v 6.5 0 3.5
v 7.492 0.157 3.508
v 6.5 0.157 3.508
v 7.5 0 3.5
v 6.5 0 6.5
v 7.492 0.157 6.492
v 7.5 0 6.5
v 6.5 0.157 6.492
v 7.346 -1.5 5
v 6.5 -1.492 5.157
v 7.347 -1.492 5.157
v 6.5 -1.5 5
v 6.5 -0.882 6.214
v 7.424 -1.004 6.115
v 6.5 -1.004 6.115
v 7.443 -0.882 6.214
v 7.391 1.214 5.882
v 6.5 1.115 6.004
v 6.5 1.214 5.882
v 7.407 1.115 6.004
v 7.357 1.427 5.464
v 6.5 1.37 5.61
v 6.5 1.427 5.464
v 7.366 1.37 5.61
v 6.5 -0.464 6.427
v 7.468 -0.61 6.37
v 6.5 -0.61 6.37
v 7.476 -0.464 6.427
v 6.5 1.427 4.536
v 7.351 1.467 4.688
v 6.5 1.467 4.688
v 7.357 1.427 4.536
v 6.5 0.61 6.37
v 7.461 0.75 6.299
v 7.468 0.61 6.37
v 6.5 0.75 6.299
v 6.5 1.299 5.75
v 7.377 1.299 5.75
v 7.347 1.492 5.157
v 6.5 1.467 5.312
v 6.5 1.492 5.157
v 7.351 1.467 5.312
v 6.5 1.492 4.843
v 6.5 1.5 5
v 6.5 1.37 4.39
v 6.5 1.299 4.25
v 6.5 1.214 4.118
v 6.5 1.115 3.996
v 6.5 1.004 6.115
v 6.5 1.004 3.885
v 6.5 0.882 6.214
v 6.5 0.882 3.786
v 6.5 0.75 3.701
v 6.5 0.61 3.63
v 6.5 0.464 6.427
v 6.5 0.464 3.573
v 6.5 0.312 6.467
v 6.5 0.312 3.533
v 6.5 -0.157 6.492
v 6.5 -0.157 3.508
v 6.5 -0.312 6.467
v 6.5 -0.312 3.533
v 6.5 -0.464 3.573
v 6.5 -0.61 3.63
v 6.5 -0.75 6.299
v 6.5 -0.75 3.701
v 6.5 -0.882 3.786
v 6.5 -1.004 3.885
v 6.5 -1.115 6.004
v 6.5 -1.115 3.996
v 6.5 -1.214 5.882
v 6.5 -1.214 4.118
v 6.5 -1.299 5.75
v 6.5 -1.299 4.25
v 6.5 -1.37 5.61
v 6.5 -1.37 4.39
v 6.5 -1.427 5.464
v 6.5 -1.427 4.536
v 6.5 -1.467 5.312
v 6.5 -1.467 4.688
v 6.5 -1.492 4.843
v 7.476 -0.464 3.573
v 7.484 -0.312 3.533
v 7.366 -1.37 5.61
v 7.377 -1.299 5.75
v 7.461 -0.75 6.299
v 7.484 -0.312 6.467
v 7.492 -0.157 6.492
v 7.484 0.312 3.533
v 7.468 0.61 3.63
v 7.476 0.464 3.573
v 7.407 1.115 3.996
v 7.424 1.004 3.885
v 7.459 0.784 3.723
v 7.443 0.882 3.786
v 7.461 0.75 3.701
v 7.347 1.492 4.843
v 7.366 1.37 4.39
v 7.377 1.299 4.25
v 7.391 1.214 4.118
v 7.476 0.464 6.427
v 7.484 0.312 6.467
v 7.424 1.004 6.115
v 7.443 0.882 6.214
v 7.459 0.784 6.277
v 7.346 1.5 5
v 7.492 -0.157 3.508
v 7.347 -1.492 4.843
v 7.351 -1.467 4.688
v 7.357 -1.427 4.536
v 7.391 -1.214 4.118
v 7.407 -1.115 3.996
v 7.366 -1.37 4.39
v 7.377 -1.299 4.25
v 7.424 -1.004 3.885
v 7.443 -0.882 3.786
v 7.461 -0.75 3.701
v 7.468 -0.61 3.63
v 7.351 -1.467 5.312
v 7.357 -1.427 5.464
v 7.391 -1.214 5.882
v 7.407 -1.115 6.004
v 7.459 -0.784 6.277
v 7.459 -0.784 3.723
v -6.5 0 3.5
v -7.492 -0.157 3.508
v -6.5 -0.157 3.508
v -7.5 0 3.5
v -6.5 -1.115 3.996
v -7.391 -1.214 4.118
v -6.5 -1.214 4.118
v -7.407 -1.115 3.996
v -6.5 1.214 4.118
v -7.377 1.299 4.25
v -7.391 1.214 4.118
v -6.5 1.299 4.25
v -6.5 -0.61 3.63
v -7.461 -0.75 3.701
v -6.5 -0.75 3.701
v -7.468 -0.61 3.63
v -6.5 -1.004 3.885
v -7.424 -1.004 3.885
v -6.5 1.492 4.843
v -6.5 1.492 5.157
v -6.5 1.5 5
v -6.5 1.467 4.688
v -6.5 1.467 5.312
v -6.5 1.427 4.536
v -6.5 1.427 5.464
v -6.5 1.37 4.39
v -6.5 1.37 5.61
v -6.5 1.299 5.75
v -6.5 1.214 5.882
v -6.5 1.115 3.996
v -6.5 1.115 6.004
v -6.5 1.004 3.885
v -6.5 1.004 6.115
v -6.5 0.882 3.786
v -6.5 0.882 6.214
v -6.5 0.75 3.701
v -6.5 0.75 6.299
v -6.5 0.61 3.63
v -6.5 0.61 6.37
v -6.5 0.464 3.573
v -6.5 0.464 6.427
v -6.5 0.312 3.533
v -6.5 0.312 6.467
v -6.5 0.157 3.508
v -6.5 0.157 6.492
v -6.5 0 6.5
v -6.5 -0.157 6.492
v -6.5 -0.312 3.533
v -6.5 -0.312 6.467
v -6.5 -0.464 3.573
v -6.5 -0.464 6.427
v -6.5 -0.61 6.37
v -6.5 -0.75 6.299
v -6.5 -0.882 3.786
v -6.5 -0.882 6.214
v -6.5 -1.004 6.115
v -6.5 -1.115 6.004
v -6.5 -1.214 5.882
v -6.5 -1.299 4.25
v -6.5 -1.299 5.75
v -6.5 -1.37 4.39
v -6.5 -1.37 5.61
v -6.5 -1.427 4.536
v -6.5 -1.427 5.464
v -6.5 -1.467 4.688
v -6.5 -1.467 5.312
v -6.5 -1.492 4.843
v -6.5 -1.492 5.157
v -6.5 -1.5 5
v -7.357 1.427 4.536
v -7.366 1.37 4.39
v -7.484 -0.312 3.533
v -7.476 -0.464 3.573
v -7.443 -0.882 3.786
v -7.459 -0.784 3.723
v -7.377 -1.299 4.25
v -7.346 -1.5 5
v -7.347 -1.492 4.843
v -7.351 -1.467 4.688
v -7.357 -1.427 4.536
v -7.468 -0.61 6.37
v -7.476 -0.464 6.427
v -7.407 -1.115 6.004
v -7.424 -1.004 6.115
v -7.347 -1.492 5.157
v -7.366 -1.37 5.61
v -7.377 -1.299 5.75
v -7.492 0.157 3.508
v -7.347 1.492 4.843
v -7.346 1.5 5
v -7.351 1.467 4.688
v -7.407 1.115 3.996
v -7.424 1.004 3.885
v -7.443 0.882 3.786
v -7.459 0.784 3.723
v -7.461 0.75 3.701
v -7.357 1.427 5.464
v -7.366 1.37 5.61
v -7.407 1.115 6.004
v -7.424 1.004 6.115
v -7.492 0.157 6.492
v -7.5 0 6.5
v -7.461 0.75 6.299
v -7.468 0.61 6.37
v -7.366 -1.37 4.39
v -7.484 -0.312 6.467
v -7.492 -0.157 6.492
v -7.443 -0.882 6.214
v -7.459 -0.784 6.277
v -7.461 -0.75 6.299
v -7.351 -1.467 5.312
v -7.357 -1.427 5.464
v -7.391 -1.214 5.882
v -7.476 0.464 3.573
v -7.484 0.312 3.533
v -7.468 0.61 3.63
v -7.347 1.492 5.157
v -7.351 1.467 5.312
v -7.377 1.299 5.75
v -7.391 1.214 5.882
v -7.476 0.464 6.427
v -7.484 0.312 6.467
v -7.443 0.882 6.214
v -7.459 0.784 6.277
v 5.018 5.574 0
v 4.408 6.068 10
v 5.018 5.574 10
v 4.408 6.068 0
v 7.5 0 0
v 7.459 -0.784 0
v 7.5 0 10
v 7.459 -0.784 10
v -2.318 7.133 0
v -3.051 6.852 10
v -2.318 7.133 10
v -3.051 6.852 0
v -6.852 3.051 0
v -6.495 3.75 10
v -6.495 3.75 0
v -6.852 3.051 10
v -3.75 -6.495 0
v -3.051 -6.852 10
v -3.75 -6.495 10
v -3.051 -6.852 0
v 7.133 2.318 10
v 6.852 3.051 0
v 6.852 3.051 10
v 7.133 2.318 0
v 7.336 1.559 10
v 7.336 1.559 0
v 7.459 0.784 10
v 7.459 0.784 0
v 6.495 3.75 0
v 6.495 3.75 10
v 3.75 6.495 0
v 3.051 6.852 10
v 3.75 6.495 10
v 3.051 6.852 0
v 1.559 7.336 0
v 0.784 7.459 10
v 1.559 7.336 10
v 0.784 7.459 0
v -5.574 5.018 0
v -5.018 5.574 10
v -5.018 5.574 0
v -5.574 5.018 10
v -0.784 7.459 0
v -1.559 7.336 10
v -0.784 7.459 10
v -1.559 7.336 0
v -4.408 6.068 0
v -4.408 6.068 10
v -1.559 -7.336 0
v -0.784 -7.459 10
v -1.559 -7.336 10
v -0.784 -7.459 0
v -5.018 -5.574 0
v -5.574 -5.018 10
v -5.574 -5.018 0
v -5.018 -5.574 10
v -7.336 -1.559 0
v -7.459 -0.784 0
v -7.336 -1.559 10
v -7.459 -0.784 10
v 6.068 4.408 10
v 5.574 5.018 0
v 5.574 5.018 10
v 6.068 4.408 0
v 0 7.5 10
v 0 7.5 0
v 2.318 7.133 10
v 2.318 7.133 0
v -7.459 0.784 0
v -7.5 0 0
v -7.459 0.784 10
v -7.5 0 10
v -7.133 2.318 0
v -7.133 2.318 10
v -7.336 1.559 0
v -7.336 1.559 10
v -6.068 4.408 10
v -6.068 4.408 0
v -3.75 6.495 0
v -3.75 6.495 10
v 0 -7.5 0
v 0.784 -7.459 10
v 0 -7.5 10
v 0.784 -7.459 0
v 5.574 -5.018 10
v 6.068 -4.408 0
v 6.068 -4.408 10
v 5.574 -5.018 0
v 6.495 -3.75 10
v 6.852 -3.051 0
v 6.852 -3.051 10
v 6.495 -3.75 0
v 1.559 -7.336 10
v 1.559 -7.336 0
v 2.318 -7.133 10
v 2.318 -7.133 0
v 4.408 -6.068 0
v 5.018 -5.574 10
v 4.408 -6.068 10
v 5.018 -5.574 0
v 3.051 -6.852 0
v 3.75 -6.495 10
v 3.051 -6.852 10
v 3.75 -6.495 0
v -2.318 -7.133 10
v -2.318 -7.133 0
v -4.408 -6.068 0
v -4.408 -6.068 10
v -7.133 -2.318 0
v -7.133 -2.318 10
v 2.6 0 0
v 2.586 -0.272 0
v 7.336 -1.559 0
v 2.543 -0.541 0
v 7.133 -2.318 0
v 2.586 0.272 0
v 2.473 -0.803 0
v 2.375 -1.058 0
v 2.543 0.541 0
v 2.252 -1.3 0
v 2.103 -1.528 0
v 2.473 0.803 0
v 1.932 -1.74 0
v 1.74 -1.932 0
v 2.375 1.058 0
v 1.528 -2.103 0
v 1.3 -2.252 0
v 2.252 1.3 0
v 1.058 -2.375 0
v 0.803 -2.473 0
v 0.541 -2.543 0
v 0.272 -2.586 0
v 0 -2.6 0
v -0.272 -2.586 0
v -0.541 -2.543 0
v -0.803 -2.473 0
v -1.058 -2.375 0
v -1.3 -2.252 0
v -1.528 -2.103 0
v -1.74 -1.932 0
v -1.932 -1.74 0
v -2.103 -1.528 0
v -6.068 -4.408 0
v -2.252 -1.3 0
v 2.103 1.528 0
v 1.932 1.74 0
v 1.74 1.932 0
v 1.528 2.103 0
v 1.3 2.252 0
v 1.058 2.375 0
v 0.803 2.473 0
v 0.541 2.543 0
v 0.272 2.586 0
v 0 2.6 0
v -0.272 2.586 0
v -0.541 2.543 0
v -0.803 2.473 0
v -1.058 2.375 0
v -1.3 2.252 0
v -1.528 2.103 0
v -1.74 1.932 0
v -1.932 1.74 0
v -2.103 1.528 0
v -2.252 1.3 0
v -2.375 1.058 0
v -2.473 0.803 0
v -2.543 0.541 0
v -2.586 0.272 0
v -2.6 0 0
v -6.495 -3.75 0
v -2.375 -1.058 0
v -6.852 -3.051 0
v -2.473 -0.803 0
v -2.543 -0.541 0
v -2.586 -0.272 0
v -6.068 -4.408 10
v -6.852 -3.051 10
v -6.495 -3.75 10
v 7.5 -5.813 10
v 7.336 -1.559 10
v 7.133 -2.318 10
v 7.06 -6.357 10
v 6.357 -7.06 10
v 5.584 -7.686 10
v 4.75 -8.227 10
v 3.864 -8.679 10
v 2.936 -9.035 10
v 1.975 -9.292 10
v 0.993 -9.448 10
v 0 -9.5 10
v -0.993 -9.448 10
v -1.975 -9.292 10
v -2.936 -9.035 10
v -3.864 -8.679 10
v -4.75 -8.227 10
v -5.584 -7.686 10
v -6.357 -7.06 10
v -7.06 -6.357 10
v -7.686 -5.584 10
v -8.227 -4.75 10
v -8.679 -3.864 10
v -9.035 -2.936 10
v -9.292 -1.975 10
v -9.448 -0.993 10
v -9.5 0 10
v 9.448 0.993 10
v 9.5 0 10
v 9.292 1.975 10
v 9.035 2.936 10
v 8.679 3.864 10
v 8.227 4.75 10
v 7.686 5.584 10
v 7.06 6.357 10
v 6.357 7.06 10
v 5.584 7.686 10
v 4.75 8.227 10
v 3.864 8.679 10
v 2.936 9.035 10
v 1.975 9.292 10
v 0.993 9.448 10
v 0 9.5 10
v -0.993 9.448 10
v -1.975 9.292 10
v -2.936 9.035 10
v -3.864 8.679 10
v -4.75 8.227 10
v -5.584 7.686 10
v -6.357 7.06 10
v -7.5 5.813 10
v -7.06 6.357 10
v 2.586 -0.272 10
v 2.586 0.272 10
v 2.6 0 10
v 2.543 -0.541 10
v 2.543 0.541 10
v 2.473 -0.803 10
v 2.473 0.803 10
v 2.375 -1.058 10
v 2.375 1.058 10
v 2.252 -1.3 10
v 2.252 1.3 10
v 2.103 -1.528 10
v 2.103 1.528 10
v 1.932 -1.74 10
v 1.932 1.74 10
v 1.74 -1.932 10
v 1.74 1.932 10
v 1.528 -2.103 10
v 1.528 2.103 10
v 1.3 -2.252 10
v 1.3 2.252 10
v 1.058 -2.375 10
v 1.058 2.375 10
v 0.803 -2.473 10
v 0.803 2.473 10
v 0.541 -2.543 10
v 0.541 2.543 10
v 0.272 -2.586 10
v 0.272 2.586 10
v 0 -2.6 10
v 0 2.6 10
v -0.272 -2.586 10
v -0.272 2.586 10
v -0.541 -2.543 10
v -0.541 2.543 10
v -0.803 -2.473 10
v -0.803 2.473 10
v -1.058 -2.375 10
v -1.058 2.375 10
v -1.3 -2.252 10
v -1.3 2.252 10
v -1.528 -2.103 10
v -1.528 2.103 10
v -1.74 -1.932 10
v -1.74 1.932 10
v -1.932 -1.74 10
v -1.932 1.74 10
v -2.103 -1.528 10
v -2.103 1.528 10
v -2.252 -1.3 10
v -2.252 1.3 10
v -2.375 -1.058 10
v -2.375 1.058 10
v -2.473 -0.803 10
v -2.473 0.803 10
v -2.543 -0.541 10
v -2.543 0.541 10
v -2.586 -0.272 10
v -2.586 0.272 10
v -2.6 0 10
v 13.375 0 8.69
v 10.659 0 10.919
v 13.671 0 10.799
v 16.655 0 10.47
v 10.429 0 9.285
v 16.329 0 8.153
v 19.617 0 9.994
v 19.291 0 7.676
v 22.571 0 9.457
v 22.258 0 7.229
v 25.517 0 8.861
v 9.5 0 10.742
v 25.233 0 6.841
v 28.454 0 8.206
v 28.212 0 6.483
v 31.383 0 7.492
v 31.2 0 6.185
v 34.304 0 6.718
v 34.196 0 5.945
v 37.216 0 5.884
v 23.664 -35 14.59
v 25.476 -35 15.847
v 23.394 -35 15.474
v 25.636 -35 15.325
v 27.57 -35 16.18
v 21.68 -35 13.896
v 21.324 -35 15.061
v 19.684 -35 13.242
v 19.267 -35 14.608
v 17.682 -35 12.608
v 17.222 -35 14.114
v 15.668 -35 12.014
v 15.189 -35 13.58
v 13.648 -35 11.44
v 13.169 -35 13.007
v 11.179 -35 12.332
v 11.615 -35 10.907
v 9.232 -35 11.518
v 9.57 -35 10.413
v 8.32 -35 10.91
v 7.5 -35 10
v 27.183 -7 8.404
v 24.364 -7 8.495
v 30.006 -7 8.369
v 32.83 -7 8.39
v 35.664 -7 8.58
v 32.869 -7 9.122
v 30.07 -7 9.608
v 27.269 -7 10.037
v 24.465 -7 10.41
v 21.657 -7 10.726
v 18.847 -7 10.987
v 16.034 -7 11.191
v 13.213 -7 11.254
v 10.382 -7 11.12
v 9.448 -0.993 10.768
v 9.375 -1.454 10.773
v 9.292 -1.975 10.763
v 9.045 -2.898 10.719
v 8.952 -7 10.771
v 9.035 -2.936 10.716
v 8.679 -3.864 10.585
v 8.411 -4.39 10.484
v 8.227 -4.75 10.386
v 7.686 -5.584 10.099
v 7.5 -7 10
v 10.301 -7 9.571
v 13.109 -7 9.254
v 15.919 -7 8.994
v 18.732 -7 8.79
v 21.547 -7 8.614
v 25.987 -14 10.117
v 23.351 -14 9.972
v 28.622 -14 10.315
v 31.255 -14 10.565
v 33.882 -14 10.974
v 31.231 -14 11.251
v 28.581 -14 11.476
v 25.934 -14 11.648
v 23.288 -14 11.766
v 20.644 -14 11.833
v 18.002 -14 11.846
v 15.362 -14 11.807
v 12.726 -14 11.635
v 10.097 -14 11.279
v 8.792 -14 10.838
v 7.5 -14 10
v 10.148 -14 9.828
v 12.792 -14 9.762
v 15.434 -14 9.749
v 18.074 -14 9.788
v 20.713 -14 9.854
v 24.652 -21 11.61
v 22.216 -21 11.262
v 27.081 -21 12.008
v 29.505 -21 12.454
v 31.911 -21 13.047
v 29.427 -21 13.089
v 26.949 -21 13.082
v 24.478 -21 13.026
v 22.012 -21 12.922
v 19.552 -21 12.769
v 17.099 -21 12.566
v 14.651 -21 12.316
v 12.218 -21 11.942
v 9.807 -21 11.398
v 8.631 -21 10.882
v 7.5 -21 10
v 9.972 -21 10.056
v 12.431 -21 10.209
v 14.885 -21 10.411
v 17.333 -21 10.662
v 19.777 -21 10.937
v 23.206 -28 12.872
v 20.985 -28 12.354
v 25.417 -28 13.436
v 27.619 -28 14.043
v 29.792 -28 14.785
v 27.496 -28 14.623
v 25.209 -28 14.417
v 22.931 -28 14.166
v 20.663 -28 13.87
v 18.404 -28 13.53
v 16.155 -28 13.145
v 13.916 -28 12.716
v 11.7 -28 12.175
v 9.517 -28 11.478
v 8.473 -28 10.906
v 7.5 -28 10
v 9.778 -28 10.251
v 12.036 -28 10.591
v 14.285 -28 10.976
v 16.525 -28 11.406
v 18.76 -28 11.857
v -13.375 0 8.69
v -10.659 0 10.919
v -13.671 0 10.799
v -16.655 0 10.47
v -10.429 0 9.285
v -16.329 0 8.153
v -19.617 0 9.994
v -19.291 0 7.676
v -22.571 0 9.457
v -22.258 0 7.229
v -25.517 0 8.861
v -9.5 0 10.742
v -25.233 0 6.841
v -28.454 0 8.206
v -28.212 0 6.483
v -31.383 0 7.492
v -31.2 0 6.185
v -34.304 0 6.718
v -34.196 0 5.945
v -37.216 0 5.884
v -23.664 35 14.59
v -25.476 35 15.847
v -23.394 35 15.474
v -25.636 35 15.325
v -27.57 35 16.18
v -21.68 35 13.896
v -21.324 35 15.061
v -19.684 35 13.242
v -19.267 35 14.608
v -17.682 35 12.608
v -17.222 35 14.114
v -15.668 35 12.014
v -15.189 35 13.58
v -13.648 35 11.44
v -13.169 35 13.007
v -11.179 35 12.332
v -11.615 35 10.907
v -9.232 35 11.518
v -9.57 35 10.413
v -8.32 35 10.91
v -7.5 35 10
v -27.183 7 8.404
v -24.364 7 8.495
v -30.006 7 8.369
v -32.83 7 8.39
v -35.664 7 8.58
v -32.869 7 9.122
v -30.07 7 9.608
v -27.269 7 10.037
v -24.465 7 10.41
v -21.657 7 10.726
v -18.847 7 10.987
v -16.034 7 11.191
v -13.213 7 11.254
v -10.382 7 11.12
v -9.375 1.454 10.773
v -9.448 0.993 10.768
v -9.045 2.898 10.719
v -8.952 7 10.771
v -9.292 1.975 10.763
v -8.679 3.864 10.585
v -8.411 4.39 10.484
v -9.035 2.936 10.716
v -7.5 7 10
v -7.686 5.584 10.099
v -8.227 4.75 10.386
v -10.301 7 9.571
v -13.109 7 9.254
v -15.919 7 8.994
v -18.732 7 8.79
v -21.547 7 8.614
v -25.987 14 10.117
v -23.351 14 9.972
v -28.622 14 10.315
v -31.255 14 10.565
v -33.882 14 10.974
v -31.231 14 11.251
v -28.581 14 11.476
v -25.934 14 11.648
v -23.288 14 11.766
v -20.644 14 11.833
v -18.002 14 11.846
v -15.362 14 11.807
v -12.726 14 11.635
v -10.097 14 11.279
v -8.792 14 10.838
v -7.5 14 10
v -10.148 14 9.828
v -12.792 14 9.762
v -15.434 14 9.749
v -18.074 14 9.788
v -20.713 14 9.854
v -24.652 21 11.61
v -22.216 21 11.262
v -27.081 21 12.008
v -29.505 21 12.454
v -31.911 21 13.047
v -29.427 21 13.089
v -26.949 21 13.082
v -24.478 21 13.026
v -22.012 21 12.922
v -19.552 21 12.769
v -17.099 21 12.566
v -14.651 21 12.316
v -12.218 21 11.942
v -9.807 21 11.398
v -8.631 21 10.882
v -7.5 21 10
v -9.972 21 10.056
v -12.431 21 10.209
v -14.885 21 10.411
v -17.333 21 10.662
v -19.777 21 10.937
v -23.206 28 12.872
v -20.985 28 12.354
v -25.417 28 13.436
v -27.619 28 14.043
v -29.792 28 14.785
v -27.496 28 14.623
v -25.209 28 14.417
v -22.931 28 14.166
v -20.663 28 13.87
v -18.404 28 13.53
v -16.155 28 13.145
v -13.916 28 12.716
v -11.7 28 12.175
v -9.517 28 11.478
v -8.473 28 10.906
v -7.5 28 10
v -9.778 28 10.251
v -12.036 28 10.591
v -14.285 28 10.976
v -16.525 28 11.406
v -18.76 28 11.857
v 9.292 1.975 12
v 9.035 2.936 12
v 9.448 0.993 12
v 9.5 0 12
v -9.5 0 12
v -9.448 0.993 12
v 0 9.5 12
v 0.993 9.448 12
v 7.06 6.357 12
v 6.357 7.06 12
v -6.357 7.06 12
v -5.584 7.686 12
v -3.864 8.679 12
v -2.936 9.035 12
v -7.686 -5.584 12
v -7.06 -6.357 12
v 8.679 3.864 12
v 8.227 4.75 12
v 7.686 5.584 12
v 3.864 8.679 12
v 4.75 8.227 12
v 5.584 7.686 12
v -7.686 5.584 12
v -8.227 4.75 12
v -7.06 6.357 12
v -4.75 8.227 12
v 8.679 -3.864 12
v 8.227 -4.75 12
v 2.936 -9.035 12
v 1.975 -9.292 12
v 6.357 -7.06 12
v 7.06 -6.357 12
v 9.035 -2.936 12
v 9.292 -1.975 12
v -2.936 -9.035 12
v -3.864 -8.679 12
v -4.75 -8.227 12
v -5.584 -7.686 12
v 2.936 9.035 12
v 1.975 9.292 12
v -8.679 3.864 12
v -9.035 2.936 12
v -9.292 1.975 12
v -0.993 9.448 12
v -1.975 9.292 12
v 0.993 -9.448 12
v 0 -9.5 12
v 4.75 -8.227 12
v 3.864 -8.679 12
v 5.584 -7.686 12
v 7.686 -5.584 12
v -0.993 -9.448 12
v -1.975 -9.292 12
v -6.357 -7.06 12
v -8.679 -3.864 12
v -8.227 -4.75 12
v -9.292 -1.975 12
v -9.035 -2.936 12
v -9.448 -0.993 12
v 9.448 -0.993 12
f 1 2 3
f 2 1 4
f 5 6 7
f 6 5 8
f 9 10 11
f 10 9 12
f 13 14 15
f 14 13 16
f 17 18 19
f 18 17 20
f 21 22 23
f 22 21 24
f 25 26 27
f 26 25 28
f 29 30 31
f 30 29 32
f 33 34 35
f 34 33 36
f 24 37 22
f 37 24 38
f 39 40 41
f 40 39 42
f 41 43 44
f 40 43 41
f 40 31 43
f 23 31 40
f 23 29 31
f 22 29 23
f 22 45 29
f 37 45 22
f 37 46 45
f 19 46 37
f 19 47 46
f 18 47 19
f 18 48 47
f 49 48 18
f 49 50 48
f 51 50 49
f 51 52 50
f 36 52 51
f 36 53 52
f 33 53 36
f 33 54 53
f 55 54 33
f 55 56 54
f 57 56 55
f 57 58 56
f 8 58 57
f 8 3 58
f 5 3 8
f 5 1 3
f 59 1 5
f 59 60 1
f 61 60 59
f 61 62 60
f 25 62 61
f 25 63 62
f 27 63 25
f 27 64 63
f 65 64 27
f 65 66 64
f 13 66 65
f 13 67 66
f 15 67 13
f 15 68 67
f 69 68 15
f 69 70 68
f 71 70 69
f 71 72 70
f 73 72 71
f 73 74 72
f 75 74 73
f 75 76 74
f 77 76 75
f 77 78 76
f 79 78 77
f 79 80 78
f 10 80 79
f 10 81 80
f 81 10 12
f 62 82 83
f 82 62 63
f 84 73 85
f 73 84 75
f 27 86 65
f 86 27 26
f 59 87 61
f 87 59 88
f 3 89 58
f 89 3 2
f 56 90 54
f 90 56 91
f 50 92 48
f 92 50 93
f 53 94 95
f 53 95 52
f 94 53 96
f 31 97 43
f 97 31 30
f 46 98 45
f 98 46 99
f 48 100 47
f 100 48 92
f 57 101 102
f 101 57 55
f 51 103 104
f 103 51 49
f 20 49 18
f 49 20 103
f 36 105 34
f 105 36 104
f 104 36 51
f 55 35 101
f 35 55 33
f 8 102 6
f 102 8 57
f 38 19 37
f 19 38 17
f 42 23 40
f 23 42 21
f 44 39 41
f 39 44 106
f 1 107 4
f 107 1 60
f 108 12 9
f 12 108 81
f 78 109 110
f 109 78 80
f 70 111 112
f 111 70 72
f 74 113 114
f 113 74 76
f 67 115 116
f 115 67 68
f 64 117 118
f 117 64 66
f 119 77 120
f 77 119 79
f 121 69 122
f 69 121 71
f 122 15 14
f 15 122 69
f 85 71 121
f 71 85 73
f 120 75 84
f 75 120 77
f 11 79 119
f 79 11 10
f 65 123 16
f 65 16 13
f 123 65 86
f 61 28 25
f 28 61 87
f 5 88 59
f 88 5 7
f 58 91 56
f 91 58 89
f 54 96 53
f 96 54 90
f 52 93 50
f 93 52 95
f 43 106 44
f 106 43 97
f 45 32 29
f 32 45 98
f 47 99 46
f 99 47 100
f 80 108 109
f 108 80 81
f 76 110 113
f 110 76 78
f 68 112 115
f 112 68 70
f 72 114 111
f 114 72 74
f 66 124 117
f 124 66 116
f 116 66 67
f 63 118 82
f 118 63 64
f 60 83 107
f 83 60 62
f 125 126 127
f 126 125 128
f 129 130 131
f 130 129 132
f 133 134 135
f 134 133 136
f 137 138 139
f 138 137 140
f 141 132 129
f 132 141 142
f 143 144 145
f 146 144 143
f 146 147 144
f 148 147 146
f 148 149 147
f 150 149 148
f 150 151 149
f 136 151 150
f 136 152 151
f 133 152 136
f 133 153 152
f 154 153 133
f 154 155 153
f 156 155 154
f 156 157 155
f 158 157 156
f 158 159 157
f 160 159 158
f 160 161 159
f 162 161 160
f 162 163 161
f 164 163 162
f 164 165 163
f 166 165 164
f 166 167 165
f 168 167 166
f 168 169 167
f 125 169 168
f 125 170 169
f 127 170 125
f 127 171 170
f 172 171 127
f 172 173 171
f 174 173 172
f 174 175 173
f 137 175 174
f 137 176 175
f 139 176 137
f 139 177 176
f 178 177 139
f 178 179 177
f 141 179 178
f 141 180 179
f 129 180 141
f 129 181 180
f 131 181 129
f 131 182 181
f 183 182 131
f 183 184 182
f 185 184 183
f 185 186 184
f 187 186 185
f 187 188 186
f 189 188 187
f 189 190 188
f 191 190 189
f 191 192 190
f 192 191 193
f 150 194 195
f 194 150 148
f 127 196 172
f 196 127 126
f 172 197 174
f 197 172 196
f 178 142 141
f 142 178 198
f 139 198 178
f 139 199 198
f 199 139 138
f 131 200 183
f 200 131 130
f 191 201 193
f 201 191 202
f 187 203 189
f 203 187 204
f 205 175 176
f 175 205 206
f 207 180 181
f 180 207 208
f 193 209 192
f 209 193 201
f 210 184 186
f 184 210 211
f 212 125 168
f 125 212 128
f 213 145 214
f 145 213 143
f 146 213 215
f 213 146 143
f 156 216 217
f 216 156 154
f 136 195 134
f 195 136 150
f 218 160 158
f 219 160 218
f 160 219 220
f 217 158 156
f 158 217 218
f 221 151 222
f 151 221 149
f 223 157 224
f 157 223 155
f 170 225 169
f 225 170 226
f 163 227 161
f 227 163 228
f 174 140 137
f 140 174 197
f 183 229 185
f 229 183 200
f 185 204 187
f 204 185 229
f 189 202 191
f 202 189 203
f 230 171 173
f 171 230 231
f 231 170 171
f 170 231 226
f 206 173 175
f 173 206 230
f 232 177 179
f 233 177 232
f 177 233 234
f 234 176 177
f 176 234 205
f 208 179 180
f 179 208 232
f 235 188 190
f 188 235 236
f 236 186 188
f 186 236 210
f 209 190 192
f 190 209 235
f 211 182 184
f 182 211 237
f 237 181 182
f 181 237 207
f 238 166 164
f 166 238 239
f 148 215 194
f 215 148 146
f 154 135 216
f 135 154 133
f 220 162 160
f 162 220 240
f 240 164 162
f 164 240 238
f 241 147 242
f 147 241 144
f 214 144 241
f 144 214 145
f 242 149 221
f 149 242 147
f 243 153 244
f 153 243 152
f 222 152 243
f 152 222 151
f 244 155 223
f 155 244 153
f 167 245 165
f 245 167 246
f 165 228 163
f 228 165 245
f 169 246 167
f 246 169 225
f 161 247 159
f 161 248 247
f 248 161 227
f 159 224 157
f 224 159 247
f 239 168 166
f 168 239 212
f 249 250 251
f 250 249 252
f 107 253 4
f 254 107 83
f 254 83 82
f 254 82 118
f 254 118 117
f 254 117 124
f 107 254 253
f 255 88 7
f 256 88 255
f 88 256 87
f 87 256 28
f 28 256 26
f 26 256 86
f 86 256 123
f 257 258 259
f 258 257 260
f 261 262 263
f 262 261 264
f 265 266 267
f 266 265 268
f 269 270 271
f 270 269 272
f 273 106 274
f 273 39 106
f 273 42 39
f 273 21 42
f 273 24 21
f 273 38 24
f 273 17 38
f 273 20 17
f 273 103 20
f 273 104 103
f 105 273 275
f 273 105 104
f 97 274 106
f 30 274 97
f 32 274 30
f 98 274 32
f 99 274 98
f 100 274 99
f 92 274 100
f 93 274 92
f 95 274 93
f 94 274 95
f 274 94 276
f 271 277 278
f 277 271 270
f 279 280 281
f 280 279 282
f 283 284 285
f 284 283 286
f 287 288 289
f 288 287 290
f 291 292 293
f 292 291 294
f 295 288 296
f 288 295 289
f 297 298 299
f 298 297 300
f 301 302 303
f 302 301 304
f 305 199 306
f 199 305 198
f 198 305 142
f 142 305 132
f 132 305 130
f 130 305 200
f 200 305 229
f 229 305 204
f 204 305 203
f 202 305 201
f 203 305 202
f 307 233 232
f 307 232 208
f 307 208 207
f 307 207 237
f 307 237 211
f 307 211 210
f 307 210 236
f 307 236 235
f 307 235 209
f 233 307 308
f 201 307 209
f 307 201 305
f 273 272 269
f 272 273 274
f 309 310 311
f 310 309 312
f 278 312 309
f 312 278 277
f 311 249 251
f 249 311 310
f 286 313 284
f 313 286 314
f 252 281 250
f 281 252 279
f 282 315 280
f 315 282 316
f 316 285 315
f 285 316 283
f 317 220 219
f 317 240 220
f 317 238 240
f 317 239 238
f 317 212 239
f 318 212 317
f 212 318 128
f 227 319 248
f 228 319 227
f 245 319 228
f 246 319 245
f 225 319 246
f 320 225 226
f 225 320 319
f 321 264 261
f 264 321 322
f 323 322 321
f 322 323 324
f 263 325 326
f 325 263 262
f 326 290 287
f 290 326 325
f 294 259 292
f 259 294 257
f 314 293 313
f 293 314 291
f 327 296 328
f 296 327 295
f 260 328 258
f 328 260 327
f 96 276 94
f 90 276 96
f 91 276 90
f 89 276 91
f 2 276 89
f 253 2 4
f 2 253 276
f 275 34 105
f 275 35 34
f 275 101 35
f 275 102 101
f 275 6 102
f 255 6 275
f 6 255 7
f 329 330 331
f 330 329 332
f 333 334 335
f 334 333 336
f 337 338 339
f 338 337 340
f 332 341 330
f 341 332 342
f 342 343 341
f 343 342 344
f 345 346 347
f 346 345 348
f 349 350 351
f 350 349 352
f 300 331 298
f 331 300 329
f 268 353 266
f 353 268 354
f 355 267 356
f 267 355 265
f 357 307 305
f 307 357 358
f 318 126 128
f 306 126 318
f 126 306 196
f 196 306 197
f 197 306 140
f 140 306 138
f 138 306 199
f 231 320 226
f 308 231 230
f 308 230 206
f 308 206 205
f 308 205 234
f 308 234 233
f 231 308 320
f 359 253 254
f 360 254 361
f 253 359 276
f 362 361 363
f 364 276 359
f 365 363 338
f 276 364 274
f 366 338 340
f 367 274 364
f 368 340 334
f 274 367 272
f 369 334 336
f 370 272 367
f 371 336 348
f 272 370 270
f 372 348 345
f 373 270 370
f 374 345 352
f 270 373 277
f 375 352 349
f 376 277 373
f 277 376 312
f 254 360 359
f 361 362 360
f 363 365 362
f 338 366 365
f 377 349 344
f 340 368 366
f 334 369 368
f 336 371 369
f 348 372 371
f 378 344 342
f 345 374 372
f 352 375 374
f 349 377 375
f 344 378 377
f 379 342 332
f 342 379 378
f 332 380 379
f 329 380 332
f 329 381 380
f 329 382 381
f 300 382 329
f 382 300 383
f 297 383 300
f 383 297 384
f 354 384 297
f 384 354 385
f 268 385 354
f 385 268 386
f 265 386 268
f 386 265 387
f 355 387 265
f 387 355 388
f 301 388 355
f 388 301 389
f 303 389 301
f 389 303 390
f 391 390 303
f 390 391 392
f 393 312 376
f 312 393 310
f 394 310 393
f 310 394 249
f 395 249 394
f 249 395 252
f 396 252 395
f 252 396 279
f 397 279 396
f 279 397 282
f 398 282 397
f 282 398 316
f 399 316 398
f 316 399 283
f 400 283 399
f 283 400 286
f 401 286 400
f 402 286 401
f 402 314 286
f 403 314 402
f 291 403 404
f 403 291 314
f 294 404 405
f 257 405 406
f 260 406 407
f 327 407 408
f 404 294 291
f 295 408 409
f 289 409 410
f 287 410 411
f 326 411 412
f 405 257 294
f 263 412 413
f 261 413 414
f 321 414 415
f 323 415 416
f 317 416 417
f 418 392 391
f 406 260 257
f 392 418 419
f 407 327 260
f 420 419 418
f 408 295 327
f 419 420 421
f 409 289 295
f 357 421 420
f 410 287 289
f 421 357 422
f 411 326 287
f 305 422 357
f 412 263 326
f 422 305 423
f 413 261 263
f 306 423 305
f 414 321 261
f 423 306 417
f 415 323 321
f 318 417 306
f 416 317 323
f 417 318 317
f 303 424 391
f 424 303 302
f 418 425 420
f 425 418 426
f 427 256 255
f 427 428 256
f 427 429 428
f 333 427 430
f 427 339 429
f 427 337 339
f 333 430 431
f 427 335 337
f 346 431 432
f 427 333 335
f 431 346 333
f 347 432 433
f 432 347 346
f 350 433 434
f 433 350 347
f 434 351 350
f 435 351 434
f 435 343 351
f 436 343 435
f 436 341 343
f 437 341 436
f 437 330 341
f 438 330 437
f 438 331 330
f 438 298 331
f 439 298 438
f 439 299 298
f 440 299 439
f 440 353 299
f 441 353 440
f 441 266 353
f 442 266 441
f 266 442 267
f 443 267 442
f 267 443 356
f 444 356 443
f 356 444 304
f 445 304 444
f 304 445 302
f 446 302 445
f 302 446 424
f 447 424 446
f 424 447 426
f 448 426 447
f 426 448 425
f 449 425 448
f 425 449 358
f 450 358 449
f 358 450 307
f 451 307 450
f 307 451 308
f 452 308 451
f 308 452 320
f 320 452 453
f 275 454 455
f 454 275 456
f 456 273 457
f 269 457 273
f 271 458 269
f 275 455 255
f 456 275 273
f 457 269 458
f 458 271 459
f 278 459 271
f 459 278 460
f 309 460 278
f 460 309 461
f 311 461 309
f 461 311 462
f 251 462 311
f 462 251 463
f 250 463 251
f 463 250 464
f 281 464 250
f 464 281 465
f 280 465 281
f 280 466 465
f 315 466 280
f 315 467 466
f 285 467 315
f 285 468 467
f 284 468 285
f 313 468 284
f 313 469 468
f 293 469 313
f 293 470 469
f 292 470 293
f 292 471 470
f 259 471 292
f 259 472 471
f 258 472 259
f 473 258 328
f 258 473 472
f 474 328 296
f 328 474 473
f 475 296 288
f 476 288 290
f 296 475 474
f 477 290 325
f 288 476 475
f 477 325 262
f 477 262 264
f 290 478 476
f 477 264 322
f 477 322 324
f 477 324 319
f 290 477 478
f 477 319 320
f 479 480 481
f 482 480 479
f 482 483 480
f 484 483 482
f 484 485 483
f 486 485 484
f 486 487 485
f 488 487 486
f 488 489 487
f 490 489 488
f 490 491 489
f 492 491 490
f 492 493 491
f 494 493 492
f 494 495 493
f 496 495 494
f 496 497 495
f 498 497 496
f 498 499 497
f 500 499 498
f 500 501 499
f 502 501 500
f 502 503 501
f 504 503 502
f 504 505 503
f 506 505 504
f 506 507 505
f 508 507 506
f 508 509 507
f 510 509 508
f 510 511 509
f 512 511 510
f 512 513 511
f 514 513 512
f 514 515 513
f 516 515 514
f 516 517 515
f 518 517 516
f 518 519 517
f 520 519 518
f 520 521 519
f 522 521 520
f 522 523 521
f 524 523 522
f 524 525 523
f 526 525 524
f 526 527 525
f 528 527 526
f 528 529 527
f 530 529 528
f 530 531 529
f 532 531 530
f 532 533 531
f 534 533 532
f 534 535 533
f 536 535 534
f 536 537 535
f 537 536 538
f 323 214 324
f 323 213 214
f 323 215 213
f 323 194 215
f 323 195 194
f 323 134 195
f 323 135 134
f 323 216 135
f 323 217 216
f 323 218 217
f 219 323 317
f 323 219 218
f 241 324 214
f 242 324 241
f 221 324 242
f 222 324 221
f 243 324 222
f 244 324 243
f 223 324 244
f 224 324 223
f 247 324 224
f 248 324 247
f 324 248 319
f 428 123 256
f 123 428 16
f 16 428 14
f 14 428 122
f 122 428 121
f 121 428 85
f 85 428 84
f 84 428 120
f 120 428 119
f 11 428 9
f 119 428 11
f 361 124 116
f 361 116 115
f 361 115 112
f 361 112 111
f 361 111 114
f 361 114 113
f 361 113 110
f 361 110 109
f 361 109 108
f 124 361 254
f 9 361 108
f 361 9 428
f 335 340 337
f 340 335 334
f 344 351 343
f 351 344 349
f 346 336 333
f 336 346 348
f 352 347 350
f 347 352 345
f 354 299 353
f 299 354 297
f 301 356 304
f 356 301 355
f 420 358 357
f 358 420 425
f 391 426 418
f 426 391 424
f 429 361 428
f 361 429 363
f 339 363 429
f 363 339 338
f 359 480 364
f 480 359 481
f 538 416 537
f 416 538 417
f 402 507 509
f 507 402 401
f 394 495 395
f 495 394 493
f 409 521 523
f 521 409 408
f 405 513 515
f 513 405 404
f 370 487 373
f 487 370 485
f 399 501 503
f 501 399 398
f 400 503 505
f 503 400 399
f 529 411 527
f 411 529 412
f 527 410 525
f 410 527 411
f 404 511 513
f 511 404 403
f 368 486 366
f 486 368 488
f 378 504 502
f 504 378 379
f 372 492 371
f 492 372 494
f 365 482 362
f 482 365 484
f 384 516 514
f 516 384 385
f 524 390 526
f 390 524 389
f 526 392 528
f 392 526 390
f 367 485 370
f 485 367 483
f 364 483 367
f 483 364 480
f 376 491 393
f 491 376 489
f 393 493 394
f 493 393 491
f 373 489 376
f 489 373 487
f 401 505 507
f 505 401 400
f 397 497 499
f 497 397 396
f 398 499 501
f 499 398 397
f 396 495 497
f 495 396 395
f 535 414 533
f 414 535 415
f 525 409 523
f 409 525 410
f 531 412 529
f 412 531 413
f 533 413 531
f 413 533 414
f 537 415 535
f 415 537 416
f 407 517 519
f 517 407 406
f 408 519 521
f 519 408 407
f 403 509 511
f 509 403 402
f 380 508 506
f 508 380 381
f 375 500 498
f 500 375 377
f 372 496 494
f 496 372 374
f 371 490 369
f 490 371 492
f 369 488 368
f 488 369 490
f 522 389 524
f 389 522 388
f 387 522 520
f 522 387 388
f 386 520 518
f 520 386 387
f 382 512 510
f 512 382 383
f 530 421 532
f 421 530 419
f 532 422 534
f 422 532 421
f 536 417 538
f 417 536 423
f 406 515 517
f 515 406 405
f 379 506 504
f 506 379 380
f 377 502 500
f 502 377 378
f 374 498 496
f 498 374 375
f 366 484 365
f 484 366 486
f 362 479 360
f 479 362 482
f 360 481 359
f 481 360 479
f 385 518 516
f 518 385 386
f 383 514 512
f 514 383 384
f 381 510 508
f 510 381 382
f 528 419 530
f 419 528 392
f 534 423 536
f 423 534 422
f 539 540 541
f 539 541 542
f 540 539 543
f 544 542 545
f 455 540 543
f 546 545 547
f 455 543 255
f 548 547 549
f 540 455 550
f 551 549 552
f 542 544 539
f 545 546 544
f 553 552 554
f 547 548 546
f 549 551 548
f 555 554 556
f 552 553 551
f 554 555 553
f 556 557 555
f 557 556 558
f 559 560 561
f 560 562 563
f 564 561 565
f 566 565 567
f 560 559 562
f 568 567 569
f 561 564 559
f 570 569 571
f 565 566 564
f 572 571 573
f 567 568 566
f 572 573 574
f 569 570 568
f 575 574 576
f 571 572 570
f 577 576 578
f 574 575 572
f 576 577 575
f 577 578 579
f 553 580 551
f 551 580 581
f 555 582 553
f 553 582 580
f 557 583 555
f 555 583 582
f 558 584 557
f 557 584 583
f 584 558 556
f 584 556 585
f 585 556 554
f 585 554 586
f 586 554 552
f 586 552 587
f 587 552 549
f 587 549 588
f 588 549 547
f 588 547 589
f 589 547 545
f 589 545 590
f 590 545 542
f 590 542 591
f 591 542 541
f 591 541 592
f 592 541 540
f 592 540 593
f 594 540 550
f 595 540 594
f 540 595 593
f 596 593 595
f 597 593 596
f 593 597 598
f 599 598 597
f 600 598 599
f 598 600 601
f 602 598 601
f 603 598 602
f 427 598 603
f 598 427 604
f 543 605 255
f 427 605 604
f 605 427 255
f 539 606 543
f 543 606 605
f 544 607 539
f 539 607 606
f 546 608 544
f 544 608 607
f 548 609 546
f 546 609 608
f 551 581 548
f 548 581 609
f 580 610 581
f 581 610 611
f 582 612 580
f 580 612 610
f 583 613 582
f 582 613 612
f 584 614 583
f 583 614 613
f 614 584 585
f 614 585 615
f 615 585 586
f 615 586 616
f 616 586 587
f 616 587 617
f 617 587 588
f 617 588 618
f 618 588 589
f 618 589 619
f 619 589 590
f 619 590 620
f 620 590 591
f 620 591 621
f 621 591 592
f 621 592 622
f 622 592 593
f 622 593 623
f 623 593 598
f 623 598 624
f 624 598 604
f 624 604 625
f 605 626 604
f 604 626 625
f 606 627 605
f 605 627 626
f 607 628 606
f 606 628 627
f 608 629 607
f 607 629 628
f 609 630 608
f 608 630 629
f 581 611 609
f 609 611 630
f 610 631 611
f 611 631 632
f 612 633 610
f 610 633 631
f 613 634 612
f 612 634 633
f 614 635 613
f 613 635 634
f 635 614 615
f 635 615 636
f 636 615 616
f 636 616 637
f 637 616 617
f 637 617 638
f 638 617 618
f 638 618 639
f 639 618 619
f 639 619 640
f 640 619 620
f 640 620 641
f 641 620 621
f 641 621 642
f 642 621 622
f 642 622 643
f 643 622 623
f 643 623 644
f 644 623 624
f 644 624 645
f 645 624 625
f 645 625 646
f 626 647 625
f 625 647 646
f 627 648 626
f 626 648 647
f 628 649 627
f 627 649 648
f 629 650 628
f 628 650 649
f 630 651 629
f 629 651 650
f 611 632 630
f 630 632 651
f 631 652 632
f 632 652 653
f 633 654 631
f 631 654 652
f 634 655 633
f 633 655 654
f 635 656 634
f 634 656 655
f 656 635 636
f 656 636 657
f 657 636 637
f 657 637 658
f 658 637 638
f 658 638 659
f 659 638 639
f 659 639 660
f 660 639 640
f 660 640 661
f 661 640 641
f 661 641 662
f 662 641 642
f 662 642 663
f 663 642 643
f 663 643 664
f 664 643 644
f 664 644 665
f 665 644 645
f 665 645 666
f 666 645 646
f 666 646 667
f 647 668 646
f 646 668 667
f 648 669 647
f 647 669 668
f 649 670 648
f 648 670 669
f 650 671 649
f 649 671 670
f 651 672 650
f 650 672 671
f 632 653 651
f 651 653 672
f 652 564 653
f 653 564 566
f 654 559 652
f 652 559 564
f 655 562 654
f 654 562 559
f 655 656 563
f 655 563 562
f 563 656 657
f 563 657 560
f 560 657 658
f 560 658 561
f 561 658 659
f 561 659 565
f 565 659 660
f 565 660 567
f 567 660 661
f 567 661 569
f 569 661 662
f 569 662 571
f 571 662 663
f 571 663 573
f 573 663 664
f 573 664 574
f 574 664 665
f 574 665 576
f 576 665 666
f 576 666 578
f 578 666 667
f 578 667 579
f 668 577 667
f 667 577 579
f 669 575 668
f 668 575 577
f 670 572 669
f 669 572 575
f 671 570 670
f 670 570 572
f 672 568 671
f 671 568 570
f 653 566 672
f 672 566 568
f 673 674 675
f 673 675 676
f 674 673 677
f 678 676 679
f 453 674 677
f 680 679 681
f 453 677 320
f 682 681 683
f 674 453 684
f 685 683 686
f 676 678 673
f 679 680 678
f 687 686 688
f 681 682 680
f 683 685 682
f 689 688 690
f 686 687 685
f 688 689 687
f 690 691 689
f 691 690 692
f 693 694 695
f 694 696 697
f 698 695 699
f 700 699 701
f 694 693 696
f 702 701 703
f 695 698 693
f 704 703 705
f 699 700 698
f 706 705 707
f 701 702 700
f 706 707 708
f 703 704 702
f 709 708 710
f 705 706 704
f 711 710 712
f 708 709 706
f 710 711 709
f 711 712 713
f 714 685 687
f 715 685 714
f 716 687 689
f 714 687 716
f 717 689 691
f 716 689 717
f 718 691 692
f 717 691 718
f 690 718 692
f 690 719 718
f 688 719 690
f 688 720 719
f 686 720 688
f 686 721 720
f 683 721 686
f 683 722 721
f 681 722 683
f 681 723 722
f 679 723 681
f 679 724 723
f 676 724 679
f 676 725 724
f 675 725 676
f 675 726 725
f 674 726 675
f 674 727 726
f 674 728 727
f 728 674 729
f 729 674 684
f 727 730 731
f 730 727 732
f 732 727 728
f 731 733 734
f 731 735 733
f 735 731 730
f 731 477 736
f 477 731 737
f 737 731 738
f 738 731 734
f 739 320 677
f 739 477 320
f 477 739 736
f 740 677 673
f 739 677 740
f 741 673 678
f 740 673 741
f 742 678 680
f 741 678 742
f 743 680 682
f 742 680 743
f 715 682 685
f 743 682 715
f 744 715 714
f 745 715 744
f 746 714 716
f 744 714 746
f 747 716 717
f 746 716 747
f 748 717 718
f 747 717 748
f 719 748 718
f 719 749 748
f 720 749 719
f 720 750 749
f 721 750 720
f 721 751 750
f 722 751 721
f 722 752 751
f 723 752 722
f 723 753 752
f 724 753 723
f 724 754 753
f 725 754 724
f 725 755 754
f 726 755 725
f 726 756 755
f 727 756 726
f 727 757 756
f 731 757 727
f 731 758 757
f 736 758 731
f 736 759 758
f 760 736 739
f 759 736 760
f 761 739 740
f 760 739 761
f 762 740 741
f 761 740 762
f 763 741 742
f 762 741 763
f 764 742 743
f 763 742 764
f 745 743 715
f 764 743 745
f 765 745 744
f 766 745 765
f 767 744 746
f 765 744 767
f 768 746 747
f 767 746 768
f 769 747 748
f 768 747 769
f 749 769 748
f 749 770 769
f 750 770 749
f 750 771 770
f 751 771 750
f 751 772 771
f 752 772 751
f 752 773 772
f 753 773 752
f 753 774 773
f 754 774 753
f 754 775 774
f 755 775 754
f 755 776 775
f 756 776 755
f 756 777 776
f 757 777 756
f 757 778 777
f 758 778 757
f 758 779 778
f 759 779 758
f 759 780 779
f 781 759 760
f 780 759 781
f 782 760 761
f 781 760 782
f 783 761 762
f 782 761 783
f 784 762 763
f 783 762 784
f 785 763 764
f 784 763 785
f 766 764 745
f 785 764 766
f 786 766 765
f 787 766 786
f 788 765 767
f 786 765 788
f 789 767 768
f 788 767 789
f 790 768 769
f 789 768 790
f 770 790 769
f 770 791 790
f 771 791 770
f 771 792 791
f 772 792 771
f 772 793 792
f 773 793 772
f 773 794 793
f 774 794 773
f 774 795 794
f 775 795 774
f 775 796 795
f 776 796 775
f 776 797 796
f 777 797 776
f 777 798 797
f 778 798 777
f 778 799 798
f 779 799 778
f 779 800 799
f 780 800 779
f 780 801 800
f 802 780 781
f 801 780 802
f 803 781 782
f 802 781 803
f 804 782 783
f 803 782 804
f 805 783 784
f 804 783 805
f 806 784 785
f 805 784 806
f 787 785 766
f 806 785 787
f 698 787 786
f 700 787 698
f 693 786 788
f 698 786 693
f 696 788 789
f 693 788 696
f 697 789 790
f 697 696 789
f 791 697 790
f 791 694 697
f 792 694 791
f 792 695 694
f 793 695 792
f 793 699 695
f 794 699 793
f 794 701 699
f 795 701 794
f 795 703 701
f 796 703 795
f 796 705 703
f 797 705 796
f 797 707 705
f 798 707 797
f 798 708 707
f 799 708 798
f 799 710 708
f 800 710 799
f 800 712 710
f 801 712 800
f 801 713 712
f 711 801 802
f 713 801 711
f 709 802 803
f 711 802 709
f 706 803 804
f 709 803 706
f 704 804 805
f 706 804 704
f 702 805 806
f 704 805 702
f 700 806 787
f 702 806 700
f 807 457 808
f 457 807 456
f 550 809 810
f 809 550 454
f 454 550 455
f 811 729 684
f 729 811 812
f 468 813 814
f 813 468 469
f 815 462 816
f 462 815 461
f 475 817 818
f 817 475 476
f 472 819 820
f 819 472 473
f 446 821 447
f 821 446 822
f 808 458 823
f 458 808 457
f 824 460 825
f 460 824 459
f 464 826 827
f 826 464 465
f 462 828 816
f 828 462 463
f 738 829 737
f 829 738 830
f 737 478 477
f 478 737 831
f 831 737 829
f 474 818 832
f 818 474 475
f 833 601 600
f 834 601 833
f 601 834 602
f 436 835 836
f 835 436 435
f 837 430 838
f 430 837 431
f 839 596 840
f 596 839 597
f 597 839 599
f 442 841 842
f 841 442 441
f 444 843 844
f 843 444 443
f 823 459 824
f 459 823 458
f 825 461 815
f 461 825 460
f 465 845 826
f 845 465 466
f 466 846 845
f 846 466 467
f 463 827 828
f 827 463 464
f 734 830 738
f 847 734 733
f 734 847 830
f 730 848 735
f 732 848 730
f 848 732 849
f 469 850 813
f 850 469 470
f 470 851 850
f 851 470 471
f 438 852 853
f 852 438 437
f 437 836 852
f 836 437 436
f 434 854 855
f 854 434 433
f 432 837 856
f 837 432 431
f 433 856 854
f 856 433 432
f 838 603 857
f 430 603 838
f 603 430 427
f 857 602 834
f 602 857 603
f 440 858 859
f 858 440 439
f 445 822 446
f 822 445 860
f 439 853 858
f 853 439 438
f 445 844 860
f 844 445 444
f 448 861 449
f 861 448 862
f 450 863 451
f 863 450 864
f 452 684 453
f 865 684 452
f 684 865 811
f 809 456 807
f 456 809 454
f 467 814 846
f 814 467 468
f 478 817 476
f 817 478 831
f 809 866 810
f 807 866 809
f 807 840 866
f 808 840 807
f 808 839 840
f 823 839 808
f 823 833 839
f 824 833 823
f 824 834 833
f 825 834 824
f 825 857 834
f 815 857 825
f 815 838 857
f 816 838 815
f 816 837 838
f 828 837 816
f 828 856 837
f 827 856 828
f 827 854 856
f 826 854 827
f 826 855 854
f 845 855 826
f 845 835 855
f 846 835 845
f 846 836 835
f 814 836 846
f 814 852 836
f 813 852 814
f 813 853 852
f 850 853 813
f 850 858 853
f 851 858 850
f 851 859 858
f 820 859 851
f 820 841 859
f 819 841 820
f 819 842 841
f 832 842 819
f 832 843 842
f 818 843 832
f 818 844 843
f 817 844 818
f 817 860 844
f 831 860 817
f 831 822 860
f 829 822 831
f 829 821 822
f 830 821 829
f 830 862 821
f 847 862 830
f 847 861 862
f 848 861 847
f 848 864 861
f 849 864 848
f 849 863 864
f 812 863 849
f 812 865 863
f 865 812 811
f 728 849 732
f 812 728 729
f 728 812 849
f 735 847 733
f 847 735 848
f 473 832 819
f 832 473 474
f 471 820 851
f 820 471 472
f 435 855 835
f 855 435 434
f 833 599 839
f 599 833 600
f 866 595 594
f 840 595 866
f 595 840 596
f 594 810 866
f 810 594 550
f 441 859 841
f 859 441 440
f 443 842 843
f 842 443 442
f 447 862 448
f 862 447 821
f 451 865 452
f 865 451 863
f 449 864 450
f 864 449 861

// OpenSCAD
/*
 * COMPLETE MOTOR + IMPELLER ASSEMBLY
 * For CFD fluid testing and visualization
 * 
 * This model includes:
 *   - Brushless motor (2204-2206 size)
 *   - Motor shaft (5mm)
 *   - Impeller hub
 *   - 3 impeller variants (bladeless, AI-blades, hybrid)
 *   - Mounting plate
 * 
 * Usage:
 *   - Render full assembly: F6
 *   - Export for CFD: Set EXPORT_MODE = "impeller_only"
 *   - Change design: Set IMPELLER_TYPE = "bladeless" | "bladed" | "hybrid"
 */

// ============================================================================
// CONFIGURATION PARAMETERS (AI-Optimizable)
// ============================================================================

// General Settings
$fn = 60;  // Resolution for CFD export (increase to 100 for final)

// Export Mode
EXPORT_MODE = "impeller_only";  // Options: "full_assembly", "impeller_only", "motor_only"

// Impeller Type
IMPELLER_TYPE = "bladed";  // Options: "bladeless", "bladed", "hybrid"

// Motor Specifications (2204-2206 brushless)
MOTOR_DIAMETER = 28;         // mm
MOTOR_HEIGHT = 25;           // mm
MOTOR_SHAFT_DIAMETER = 5;    // mm (standard)
MOTOR_SHAFT_LENGTH = 15;     // mm (extends above motor)
MOTOR_MOUNT_PATTERN = 16;    // mm (16x16 or 19x19 common)
MOTOR_SCREW_DIAMETER = 3;    // M3 screws

// Impeller Parameters - BLADELESS
BLADELESS_OUTER_DIAMETER = 90;    // mm
BLADELESS_AIR_GAP = 0.8;          // mm (optimize: 0.6-1.2)
BLADELESS_THROAT_RATIO = 0.72;    // (optimize: 0.65-0.80)
BLADELESS_EXPANSION_ANGLE = 18;   // degrees (optimize: 12-25)
BLADELESS_RING_THICKNESS = 3;     // mm (optimize: 2-4)
BLADELESS_HEIGHT = 24;            // mm

// Impeller Parameters - BLADED
BLADED_DIAMETER = 85;
BLADED_HUB_DIAMETER = 15;         // mm (optimize: 12-20)
BLADED_BLADE_COUNT = 2;
BLADED_ROOT_CHORD = 30;
BLADED_TIP_CHORD_RATIO = 0.7;    // (optimize: 0.6-0.8)
BLADED_BLADE_THICKNESS = 2;       // mm (optimize: 1.5-3)
BLADED_BLADE_TWIST = -25;
BLADED_ATTACK_ANGLE = -8;
BLADED_BLADE_HEIGHT = 12;         // mm (optimize: 10-15)

// Hub Parameters
HUB_DIAMETER = 15;
HUB_HEIGHT = 10;
HUB_SET_SCREW_DIAMETER = 3;  // M3 set screw

// Mounting Plate
PLATE_SIZE = 50;
PLATE_THICKNESS = 3;

// ============================================================================
// MOTOR MODEL
// ============================================================================

module brushless_motor_2204() {
    color("DarkSlateGray") {
        // Motor can (bell)
        difference() {
            cylinder(h=MOTOR_HEIGHT, d=MOTOR_DIAMETER);
            
            // Hollow inside (weight reduction visualization)
            translate([0, 0, -0.5])
                cylinder(h=MOTOR_HEIGHT - 5, d=MOTOR_DIAMETER - 4);
            
            // Mounting holes
            for(i = [0:3]) {
                rotate([0, 0, i * 90])
                    translate([MOTOR_MOUNT_PATTERN/2, 0, MOTOR_HEIGHT/2])
                        rotate([90, 0, 0])
                            cylinder(h=MOTOR_DIAMETER, d=MOTOR_SCREW_DIAMETER, center=true);
            }
        }
        
        // Motor base
        translate([0, 0, -3])
            cylinder(h=3, d=MOTOR_DIAMETER - 2);
    }
    
    // Motor shaft
    color("Silver")
        translate([0, 0, MOTOR_HEIGHT])
            cylinder(h=MOTOR_SHAFT_LENGTH, d=MOTOR_SHAFT_DIAMETER);
    
    // Shaft tip (for hub attachment)
    color("Silver")
        translate([0, 0, MOTOR_HEIGHT + MOTOR_SHAFT_LENGTH])
            cylinder(h=2, d=MOTOR_SHAFT_DIAMETER - 0.5);
}

// ============================================================================
// IMPELLER HUB
// ============================================================================

module impeller_hub() {
    color("Gray")
    difference() {
        // Hub body
        cylinder(h=HUB_HEIGHT, d=HUB_DIAMETER);
        
        // Shaft hole (5mm + 0.2mm clearance)
        translate([0, 0, -0.5])
            cylinder(h=HUB_HEIGHT + 1, d=MOTOR_SHAFT_DIAMETER + 0.2);
        
        // Set screw holes (2x for balance)
        for(i = [0:1]) {
            rotate([0, 0, i * 180])
                translate([HUB_DIAMETER/2 - 1, 0, HUB_HEIGHT/2])
                    rotate([0, 90, 0])
                        cylinder(h=5, d=HUB_SET_SCREW_DIAMETER);
        }
    }
}

// ============================================================================
// BLADELESS IMPELLER (Dyson-style)
// ============================================================================

module bladeless_impeller() {
    outer_r = BLADELESS_OUTER_DIAMETER / 2;
    throat_r = outer_r * BLADELESS_THROAT_RATIO;
    gap = BLADELESS_AIR_GAP;
    
    color("SkyBlue", 0.7)
    difference() {
        // Outer ring
        rotate_extrude()
            translate([outer_r - BLADELESS_RING_THICKNESS/2, BLADELESS_HEIGHT/2, 0])
                circle(d=BLADELESS_RING_THICKNESS + BLADELESS_HEIGHT);
        
        // Inner air gap (critical for Coanda effect)
        rotate_extrude()
            translate([outer_r - gap - BLADELESS_RING_THICKNESS/2, BLADELESS_HEIGHT/2, 0])
                circle(d=BLADELESS_RING_THICKNESS + BLADELESS_HEIGHT - 2*gap);
    }
    
    // Base plate (connects to hub)
    color("SkyBlue", 0.7)
    translate([0, 0, -2])
        difference() {
            cylinder(h=2, d=outer_r * 2);
            translate([0, 0, -0.5])
                cylinder(h=3, d=HUB_DIAMETER + 1);
        }
    
    // Air inlet (bell-shaped for smooth flow)
    color("SkyBlue", 0.7)
    translate([0, 0, -2]) {
        difference() {
            cylinder(h=15, d1=throat_r * 2, d2=outer_r * 1.8);
            translate([0, 0, -0.5])
                cylinder(h=16, d1=throat_r * 2 - 3, d2=outer_r * 1.8 - 3);
        }
    }
}

// ============================================================================
// AI-OPTIMIZED BLADED IMPELLER (NACA 2412 profile)
// ============================================================================

module naca_2412_blade(chord, height, twist_angle, attack_angle) {
    // Simplified NACA 2412 airfoil profile
    // Using parametric approximation for 3D printing
    
    color("LightSteelBlue", 0.8)
    linear_extrude(height=height, twist=twist_angle, scale=BLADED_TIP_CHORD_RATIO) {
        rotate([0, 0, attack_angle])
        polygon([
            // Upper surface (cambered)
            [0, 0],
            [chord * 0.05, chord * 0.03],
            [chord * 0.1, chord * 0.045],
            [chord * 0.2, chord * 0.055],
            [chord * 0.3, chord * 0.058],
            [chord * 0.4, chord * 0.056],
            [chord * 0.5, chord * 0.052],
            [chord * 0.6, chord * 0.046],
            [chord * 0.7, chord * 0.038],
            [chord * 0.8, chord * 0.028],
            [chord * 0.9, chord * 0.016],
            [chord * 1.0, chord * 0.002],
            // Lower surface (less cambered)
            [chord * 0.9, -chord * 0.010],
            [chord * 0.8, -chord * 0.016],
            [chord * 0.7, -chord * 0.020],
            [chord * 0.6, -chord * 0.022],
            [chord * 0.5, -chord * 0.023],
            [chord * 0.4, -chord * 0.022],
            [chord * 0.3, -chord * 0.020],
            [chord * 0.2, -chord * 0.016],
            [chord * 0.1, -chord * 0.010],
            [chord * 0.05, -chord * 0.005],
        ]);
    }
}

module bladed_impeller() {
    // Blades
    for(i = [0 : BLADED_BLADE_COUNT - 1]) {
        rotate([0, 0, i * (360 / BLADED_BLADE_COUNT)])
            translate([BLADED_HUB_DIAMETER/2, 0, 0])
                rotate([90, 0, 0])
                    naca_2412_blade(
                        BLADED_ROOT_CHORD, 
                        (BLADED_DIAMETER - BLADED_HUB_DIAMETER) / 2,
                        BLADED_BLADE_TWIST,
                        BLADED_ATTACK_ANGLE
                    );
    }
    
    // Hub disk (connects blades)
    color("LightSteelBlue", 0.8)
    cylinder(h=2, d=BLADED_HUB_DIAMETER + 4);
}

// ============================================================================
// HYBRID IMPELLER (Blades inside bladeless ring)
// ============================================================================

module hybrid_impeller() {
    // Outer bladeless ring
    bladeless_impeller();
    
    // Inner bladed impeller (scaled down to fit)
    scale([0.85, 0.85, 1])
        bladed_impeller();
}

// ============================================================================
// MOUNTING PLATE
// ============================================================================

module mounting_plate() {
    color("DimGray")
    difference() {
        // Base plate
        translate([-PLATE_SIZE/2, -PLATE_SIZE/2, 0])
            cube([PLATE_SIZE, PLATE_SIZE, PLATE_THICKNESS]);
        
        // Center hole for motor shaft
        translate([0, 0, -0.5])
            cylinder(h=PLATE_THICKNESS + 1, d=MOTOR_DIAMETER + 2);
        
        // Motor mounting holes
        for(i = [0:3]) {
            rotate([0, 0, i * 90])
                translate([MOTOR_MOUNT_PATTERN/2, 0, -0.5])
                    cylinder(h=PLATE_THICKNESS + 1, d=MOTOR_SCREW_DIAMETER);
        }
    }
}

// ============================================================================
// COMPLETE ASSEMBLY
// ============================================================================

module complete_assembly() {
    // Mounting plate (bottom)
    translate([0, 0, -PLATE_THICKNESS])
        mounting_plate();
    
    // Motor
    translate([0, 0, 0])
        brushless_motor_2204();
    
    // Hub (on shaft)
    translate([0, 0, MOTOR_HEIGHT + MOTOR_SHAFT_LENGTH - 2])
        impeller_hub();
    
    // Impeller (on hub)
    translate([0, 0, MOTOR_HEIGHT + MOTOR_SHAFT_LENGTH + HUB_HEIGHT]) {
        if (IMPELLER_TYPE == "bladeless") {
            bladeless_impeller();
        } else if (IMPELLER_TYPE == "bladed") {
            bladed_impeller();
        } else if (IMPELLER_TYPE == "hybrid") {
            hybrid_impeller();
        }
    }
}

// ============================================================================
// RENDER BASED ON EXPORT MODE
// ============================================================================

if (EXPORT_MODE == "full_assembly") {
    complete_assembly();
} 
else if (EXPORT_MODE == "impeller_only") {
    // For CFD testing - impeller + hub only
    impeller_hub();
    translate([0, 0, HUB_HEIGHT]) {
        if (IMPELLER_TYPE == "bladeless") {
            bladeless_impeller();
        } else if (IMPELLER_TYPE == "bladed") {
            bladed_impeller();
        } else if (IMPELLER_TYPE == "hybrid") {
            hybrid_impeller();
        }
    }
}
else if (EXPORT_MODE == "motor_only") {
    brushless_motor_2204();
}

// ============================================================================
// ANNOTATIONS FOR VISUALIZATION
// ============================================================================

// Uncomment to show dimensions
/*
color("Red", 0.3)
translate([BLADED_DIAMETER/2 + 10, 0, 20])
    text(str("Ø", BLADED_DIAMETER, "mm"), size=5, halign="left");

color("Green", 0.3)
translate([0, BLADED_DIAMETER/2 + 10, 20])
    text(str(BLADED_BLADE_COUNT, " blades"), size=5, halign="center");
*/

// ============================================================================
// EXPORT NOTES
// ============================================================================

/*
 * TO EXPORT FOR CFD TESTING:
 * 
 * 1. Set EXPORT_MODE = "impeller_only"
 * 2. Set IMPELLER_TYPE = "bladeless" (or "bladed" or "hybrid")
 * 3. Press F6 to render
 * 4. File → Export → Export as STL
 * 5. Use filename: impeller_bladeless_fn60.stl
 * 
 * FOR OPTIMIZATION:
 * - Modify parameters at top (marked with "optimize:")
 * - Re-render and export
 * - Upload to SimScale for CFD
 * - Compare results
 * 
 * RECOMMENDED CFD SETTINGS:
 * - Solver: k-omega SST
 * - RPM: 5000, 7000, 9000
 * - Mesh: 3-5M cells
 * - Boundary: Rotating zone on impeller
 */
